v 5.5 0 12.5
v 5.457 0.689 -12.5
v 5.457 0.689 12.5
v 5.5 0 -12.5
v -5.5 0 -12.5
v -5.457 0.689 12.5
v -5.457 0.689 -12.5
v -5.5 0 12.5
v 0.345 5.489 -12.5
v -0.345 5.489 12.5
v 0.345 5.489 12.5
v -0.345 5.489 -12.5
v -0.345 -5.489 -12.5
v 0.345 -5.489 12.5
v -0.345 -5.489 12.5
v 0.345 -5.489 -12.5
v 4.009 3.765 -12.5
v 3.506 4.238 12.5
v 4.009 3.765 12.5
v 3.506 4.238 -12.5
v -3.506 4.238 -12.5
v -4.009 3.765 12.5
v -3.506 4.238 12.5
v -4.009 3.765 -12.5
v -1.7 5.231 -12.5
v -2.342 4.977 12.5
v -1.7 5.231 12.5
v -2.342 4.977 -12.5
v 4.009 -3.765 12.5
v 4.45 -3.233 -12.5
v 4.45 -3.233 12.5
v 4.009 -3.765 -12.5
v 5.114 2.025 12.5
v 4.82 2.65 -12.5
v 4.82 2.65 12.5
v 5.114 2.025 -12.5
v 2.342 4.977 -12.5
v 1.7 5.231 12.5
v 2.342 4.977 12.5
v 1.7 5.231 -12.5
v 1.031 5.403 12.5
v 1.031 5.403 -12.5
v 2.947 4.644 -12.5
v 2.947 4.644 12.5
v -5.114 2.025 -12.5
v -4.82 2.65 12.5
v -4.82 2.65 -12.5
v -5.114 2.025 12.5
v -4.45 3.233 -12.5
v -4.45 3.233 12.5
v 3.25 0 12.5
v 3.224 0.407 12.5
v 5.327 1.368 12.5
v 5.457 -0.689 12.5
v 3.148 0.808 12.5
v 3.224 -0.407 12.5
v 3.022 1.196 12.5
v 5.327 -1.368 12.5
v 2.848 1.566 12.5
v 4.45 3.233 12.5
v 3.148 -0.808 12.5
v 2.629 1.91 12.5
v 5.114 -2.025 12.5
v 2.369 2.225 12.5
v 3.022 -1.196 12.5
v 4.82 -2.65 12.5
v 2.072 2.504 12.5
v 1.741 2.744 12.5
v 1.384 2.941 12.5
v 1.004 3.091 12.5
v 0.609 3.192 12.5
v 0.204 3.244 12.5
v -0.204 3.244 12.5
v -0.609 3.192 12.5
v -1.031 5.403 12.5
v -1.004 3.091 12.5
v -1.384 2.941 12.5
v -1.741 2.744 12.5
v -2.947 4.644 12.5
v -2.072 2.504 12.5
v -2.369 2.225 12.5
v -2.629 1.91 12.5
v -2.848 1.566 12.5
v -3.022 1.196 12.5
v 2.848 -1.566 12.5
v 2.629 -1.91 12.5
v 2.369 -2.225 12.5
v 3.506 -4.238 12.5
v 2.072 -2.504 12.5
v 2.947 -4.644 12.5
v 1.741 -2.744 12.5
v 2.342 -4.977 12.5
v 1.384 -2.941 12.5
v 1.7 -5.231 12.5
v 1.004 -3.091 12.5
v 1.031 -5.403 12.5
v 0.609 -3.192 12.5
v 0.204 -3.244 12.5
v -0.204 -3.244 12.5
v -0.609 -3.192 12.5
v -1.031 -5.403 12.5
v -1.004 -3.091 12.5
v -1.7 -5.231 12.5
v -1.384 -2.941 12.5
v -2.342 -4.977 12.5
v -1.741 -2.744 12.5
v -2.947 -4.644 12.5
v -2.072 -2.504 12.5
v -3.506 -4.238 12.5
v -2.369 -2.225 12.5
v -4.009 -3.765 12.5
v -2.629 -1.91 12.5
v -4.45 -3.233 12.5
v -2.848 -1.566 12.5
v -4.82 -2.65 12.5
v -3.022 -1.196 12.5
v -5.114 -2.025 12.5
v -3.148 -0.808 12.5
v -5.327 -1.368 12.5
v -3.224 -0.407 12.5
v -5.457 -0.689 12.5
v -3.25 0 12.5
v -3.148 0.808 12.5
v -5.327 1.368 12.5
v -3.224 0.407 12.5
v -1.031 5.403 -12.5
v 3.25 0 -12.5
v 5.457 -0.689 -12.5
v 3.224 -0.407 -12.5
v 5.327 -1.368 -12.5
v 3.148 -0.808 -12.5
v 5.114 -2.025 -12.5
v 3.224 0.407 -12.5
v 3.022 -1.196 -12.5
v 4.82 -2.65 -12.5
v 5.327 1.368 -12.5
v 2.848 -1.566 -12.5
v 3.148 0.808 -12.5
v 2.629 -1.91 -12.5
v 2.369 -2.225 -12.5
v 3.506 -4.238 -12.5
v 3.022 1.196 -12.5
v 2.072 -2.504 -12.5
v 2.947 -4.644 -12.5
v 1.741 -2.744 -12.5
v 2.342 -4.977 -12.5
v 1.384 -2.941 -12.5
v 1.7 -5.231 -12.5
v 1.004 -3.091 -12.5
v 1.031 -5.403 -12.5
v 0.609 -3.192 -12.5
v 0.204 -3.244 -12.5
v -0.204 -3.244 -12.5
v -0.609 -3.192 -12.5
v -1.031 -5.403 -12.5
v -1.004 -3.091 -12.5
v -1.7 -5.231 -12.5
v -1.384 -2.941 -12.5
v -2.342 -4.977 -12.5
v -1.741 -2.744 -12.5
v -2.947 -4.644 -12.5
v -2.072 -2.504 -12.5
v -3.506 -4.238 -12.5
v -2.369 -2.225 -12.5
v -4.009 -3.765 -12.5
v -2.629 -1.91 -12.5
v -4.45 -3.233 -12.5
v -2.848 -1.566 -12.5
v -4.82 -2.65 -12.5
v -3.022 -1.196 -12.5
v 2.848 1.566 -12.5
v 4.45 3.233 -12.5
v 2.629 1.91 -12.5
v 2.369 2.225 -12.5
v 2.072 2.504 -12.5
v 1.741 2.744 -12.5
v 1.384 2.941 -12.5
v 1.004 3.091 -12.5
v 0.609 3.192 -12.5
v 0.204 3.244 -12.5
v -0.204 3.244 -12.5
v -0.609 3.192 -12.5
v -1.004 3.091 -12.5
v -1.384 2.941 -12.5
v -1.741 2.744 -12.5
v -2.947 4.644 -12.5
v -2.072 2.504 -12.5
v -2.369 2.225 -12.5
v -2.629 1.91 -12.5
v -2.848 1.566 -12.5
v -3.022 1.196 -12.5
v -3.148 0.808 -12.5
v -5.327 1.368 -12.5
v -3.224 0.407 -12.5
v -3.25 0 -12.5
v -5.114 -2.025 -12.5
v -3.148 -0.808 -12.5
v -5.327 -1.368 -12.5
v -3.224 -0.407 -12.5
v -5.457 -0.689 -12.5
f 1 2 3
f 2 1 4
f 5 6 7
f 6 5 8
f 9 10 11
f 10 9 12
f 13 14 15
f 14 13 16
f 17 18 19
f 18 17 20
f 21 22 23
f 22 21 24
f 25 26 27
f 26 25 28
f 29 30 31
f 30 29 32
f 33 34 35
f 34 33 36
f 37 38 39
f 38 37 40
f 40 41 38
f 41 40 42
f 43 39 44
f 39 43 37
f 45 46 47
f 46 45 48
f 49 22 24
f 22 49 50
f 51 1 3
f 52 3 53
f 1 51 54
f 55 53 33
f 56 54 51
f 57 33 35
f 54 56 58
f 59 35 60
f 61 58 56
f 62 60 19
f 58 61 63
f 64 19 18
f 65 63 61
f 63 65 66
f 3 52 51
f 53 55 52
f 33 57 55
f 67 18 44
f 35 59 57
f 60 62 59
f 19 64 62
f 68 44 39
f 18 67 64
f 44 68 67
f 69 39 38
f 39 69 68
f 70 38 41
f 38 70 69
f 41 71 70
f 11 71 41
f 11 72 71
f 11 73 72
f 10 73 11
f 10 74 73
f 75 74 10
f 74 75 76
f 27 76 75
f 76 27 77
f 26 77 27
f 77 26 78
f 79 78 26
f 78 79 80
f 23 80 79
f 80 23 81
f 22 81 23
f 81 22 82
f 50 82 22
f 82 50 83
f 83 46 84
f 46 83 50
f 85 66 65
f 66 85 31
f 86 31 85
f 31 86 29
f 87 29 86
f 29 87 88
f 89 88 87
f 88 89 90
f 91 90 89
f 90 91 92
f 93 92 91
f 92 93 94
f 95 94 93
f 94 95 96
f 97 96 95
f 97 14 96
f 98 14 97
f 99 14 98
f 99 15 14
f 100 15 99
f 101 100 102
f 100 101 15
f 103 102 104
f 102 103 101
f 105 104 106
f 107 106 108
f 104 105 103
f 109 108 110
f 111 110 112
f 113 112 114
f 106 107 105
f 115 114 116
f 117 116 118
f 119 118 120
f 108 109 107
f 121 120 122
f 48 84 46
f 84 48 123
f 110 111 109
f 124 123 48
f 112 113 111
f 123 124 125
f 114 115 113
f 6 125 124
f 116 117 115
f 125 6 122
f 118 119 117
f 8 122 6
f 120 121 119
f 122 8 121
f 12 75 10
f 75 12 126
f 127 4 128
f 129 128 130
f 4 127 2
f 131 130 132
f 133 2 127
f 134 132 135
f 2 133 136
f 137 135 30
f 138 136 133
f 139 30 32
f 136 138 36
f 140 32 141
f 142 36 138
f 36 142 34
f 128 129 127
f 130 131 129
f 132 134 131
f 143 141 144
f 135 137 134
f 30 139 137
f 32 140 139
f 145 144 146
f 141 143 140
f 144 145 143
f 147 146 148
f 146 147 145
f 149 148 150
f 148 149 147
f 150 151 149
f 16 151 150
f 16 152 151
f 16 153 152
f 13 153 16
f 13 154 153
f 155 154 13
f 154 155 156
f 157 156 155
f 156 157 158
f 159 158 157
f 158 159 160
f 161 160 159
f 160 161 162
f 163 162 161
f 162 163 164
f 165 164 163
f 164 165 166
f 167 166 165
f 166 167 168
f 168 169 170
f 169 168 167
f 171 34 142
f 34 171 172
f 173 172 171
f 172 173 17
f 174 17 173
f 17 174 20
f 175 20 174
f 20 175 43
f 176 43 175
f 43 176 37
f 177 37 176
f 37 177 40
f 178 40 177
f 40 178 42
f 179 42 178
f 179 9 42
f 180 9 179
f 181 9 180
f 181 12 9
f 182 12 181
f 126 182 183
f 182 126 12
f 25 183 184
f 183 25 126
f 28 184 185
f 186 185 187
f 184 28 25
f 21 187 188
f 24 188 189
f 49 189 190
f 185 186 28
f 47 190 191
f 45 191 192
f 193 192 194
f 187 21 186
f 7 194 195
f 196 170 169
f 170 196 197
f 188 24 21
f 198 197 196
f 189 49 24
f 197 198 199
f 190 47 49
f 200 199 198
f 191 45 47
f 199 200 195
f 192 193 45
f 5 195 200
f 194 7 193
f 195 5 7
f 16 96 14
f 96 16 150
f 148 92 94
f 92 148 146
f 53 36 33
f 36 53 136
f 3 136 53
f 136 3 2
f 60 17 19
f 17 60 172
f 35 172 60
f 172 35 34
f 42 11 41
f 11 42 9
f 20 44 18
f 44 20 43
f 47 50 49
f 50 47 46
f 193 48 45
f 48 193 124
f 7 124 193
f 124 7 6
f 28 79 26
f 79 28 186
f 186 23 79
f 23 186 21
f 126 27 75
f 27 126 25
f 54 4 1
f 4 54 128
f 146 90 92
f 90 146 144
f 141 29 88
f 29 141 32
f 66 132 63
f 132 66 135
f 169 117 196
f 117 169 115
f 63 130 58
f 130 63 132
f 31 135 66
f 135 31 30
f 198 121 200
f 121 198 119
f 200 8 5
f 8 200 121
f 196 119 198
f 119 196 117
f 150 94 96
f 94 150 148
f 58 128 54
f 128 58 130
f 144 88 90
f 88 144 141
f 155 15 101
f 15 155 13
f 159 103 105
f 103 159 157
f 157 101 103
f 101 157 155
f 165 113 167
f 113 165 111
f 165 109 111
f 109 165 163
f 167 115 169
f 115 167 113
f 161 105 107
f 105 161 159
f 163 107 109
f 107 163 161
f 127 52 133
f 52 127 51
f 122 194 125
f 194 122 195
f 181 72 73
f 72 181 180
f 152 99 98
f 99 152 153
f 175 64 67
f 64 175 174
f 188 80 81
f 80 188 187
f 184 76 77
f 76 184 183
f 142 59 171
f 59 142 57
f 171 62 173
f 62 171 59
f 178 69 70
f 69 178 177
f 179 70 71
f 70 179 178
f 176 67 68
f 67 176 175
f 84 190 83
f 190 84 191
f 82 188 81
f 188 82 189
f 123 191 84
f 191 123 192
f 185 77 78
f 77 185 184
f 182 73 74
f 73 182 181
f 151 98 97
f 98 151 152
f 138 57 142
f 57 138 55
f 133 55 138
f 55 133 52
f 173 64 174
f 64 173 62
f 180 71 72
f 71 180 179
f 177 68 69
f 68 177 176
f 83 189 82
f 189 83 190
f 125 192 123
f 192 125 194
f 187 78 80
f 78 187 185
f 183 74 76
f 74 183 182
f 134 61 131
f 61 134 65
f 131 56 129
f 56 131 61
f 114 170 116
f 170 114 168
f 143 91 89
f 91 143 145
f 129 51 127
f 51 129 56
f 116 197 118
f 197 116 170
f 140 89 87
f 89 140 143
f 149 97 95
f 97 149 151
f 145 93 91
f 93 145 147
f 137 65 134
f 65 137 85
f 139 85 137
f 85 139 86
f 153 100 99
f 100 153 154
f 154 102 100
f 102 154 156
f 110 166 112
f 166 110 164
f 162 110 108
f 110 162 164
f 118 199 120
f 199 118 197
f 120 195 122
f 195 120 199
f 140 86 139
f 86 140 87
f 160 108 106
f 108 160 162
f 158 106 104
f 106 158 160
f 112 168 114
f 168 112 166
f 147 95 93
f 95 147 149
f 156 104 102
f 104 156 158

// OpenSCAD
$fn = 50;


difference() {
	union() {
		translate(v = [0, 0, -12.5000000000]) {
			cylinder(h = 25, r = 5.5000000000);
		}
	}
	union() {
		translate(v = [0, 0, -100.0000000000]) {
			cylinder(h = 200, r = 3.2500000000);
		}
	}
}
